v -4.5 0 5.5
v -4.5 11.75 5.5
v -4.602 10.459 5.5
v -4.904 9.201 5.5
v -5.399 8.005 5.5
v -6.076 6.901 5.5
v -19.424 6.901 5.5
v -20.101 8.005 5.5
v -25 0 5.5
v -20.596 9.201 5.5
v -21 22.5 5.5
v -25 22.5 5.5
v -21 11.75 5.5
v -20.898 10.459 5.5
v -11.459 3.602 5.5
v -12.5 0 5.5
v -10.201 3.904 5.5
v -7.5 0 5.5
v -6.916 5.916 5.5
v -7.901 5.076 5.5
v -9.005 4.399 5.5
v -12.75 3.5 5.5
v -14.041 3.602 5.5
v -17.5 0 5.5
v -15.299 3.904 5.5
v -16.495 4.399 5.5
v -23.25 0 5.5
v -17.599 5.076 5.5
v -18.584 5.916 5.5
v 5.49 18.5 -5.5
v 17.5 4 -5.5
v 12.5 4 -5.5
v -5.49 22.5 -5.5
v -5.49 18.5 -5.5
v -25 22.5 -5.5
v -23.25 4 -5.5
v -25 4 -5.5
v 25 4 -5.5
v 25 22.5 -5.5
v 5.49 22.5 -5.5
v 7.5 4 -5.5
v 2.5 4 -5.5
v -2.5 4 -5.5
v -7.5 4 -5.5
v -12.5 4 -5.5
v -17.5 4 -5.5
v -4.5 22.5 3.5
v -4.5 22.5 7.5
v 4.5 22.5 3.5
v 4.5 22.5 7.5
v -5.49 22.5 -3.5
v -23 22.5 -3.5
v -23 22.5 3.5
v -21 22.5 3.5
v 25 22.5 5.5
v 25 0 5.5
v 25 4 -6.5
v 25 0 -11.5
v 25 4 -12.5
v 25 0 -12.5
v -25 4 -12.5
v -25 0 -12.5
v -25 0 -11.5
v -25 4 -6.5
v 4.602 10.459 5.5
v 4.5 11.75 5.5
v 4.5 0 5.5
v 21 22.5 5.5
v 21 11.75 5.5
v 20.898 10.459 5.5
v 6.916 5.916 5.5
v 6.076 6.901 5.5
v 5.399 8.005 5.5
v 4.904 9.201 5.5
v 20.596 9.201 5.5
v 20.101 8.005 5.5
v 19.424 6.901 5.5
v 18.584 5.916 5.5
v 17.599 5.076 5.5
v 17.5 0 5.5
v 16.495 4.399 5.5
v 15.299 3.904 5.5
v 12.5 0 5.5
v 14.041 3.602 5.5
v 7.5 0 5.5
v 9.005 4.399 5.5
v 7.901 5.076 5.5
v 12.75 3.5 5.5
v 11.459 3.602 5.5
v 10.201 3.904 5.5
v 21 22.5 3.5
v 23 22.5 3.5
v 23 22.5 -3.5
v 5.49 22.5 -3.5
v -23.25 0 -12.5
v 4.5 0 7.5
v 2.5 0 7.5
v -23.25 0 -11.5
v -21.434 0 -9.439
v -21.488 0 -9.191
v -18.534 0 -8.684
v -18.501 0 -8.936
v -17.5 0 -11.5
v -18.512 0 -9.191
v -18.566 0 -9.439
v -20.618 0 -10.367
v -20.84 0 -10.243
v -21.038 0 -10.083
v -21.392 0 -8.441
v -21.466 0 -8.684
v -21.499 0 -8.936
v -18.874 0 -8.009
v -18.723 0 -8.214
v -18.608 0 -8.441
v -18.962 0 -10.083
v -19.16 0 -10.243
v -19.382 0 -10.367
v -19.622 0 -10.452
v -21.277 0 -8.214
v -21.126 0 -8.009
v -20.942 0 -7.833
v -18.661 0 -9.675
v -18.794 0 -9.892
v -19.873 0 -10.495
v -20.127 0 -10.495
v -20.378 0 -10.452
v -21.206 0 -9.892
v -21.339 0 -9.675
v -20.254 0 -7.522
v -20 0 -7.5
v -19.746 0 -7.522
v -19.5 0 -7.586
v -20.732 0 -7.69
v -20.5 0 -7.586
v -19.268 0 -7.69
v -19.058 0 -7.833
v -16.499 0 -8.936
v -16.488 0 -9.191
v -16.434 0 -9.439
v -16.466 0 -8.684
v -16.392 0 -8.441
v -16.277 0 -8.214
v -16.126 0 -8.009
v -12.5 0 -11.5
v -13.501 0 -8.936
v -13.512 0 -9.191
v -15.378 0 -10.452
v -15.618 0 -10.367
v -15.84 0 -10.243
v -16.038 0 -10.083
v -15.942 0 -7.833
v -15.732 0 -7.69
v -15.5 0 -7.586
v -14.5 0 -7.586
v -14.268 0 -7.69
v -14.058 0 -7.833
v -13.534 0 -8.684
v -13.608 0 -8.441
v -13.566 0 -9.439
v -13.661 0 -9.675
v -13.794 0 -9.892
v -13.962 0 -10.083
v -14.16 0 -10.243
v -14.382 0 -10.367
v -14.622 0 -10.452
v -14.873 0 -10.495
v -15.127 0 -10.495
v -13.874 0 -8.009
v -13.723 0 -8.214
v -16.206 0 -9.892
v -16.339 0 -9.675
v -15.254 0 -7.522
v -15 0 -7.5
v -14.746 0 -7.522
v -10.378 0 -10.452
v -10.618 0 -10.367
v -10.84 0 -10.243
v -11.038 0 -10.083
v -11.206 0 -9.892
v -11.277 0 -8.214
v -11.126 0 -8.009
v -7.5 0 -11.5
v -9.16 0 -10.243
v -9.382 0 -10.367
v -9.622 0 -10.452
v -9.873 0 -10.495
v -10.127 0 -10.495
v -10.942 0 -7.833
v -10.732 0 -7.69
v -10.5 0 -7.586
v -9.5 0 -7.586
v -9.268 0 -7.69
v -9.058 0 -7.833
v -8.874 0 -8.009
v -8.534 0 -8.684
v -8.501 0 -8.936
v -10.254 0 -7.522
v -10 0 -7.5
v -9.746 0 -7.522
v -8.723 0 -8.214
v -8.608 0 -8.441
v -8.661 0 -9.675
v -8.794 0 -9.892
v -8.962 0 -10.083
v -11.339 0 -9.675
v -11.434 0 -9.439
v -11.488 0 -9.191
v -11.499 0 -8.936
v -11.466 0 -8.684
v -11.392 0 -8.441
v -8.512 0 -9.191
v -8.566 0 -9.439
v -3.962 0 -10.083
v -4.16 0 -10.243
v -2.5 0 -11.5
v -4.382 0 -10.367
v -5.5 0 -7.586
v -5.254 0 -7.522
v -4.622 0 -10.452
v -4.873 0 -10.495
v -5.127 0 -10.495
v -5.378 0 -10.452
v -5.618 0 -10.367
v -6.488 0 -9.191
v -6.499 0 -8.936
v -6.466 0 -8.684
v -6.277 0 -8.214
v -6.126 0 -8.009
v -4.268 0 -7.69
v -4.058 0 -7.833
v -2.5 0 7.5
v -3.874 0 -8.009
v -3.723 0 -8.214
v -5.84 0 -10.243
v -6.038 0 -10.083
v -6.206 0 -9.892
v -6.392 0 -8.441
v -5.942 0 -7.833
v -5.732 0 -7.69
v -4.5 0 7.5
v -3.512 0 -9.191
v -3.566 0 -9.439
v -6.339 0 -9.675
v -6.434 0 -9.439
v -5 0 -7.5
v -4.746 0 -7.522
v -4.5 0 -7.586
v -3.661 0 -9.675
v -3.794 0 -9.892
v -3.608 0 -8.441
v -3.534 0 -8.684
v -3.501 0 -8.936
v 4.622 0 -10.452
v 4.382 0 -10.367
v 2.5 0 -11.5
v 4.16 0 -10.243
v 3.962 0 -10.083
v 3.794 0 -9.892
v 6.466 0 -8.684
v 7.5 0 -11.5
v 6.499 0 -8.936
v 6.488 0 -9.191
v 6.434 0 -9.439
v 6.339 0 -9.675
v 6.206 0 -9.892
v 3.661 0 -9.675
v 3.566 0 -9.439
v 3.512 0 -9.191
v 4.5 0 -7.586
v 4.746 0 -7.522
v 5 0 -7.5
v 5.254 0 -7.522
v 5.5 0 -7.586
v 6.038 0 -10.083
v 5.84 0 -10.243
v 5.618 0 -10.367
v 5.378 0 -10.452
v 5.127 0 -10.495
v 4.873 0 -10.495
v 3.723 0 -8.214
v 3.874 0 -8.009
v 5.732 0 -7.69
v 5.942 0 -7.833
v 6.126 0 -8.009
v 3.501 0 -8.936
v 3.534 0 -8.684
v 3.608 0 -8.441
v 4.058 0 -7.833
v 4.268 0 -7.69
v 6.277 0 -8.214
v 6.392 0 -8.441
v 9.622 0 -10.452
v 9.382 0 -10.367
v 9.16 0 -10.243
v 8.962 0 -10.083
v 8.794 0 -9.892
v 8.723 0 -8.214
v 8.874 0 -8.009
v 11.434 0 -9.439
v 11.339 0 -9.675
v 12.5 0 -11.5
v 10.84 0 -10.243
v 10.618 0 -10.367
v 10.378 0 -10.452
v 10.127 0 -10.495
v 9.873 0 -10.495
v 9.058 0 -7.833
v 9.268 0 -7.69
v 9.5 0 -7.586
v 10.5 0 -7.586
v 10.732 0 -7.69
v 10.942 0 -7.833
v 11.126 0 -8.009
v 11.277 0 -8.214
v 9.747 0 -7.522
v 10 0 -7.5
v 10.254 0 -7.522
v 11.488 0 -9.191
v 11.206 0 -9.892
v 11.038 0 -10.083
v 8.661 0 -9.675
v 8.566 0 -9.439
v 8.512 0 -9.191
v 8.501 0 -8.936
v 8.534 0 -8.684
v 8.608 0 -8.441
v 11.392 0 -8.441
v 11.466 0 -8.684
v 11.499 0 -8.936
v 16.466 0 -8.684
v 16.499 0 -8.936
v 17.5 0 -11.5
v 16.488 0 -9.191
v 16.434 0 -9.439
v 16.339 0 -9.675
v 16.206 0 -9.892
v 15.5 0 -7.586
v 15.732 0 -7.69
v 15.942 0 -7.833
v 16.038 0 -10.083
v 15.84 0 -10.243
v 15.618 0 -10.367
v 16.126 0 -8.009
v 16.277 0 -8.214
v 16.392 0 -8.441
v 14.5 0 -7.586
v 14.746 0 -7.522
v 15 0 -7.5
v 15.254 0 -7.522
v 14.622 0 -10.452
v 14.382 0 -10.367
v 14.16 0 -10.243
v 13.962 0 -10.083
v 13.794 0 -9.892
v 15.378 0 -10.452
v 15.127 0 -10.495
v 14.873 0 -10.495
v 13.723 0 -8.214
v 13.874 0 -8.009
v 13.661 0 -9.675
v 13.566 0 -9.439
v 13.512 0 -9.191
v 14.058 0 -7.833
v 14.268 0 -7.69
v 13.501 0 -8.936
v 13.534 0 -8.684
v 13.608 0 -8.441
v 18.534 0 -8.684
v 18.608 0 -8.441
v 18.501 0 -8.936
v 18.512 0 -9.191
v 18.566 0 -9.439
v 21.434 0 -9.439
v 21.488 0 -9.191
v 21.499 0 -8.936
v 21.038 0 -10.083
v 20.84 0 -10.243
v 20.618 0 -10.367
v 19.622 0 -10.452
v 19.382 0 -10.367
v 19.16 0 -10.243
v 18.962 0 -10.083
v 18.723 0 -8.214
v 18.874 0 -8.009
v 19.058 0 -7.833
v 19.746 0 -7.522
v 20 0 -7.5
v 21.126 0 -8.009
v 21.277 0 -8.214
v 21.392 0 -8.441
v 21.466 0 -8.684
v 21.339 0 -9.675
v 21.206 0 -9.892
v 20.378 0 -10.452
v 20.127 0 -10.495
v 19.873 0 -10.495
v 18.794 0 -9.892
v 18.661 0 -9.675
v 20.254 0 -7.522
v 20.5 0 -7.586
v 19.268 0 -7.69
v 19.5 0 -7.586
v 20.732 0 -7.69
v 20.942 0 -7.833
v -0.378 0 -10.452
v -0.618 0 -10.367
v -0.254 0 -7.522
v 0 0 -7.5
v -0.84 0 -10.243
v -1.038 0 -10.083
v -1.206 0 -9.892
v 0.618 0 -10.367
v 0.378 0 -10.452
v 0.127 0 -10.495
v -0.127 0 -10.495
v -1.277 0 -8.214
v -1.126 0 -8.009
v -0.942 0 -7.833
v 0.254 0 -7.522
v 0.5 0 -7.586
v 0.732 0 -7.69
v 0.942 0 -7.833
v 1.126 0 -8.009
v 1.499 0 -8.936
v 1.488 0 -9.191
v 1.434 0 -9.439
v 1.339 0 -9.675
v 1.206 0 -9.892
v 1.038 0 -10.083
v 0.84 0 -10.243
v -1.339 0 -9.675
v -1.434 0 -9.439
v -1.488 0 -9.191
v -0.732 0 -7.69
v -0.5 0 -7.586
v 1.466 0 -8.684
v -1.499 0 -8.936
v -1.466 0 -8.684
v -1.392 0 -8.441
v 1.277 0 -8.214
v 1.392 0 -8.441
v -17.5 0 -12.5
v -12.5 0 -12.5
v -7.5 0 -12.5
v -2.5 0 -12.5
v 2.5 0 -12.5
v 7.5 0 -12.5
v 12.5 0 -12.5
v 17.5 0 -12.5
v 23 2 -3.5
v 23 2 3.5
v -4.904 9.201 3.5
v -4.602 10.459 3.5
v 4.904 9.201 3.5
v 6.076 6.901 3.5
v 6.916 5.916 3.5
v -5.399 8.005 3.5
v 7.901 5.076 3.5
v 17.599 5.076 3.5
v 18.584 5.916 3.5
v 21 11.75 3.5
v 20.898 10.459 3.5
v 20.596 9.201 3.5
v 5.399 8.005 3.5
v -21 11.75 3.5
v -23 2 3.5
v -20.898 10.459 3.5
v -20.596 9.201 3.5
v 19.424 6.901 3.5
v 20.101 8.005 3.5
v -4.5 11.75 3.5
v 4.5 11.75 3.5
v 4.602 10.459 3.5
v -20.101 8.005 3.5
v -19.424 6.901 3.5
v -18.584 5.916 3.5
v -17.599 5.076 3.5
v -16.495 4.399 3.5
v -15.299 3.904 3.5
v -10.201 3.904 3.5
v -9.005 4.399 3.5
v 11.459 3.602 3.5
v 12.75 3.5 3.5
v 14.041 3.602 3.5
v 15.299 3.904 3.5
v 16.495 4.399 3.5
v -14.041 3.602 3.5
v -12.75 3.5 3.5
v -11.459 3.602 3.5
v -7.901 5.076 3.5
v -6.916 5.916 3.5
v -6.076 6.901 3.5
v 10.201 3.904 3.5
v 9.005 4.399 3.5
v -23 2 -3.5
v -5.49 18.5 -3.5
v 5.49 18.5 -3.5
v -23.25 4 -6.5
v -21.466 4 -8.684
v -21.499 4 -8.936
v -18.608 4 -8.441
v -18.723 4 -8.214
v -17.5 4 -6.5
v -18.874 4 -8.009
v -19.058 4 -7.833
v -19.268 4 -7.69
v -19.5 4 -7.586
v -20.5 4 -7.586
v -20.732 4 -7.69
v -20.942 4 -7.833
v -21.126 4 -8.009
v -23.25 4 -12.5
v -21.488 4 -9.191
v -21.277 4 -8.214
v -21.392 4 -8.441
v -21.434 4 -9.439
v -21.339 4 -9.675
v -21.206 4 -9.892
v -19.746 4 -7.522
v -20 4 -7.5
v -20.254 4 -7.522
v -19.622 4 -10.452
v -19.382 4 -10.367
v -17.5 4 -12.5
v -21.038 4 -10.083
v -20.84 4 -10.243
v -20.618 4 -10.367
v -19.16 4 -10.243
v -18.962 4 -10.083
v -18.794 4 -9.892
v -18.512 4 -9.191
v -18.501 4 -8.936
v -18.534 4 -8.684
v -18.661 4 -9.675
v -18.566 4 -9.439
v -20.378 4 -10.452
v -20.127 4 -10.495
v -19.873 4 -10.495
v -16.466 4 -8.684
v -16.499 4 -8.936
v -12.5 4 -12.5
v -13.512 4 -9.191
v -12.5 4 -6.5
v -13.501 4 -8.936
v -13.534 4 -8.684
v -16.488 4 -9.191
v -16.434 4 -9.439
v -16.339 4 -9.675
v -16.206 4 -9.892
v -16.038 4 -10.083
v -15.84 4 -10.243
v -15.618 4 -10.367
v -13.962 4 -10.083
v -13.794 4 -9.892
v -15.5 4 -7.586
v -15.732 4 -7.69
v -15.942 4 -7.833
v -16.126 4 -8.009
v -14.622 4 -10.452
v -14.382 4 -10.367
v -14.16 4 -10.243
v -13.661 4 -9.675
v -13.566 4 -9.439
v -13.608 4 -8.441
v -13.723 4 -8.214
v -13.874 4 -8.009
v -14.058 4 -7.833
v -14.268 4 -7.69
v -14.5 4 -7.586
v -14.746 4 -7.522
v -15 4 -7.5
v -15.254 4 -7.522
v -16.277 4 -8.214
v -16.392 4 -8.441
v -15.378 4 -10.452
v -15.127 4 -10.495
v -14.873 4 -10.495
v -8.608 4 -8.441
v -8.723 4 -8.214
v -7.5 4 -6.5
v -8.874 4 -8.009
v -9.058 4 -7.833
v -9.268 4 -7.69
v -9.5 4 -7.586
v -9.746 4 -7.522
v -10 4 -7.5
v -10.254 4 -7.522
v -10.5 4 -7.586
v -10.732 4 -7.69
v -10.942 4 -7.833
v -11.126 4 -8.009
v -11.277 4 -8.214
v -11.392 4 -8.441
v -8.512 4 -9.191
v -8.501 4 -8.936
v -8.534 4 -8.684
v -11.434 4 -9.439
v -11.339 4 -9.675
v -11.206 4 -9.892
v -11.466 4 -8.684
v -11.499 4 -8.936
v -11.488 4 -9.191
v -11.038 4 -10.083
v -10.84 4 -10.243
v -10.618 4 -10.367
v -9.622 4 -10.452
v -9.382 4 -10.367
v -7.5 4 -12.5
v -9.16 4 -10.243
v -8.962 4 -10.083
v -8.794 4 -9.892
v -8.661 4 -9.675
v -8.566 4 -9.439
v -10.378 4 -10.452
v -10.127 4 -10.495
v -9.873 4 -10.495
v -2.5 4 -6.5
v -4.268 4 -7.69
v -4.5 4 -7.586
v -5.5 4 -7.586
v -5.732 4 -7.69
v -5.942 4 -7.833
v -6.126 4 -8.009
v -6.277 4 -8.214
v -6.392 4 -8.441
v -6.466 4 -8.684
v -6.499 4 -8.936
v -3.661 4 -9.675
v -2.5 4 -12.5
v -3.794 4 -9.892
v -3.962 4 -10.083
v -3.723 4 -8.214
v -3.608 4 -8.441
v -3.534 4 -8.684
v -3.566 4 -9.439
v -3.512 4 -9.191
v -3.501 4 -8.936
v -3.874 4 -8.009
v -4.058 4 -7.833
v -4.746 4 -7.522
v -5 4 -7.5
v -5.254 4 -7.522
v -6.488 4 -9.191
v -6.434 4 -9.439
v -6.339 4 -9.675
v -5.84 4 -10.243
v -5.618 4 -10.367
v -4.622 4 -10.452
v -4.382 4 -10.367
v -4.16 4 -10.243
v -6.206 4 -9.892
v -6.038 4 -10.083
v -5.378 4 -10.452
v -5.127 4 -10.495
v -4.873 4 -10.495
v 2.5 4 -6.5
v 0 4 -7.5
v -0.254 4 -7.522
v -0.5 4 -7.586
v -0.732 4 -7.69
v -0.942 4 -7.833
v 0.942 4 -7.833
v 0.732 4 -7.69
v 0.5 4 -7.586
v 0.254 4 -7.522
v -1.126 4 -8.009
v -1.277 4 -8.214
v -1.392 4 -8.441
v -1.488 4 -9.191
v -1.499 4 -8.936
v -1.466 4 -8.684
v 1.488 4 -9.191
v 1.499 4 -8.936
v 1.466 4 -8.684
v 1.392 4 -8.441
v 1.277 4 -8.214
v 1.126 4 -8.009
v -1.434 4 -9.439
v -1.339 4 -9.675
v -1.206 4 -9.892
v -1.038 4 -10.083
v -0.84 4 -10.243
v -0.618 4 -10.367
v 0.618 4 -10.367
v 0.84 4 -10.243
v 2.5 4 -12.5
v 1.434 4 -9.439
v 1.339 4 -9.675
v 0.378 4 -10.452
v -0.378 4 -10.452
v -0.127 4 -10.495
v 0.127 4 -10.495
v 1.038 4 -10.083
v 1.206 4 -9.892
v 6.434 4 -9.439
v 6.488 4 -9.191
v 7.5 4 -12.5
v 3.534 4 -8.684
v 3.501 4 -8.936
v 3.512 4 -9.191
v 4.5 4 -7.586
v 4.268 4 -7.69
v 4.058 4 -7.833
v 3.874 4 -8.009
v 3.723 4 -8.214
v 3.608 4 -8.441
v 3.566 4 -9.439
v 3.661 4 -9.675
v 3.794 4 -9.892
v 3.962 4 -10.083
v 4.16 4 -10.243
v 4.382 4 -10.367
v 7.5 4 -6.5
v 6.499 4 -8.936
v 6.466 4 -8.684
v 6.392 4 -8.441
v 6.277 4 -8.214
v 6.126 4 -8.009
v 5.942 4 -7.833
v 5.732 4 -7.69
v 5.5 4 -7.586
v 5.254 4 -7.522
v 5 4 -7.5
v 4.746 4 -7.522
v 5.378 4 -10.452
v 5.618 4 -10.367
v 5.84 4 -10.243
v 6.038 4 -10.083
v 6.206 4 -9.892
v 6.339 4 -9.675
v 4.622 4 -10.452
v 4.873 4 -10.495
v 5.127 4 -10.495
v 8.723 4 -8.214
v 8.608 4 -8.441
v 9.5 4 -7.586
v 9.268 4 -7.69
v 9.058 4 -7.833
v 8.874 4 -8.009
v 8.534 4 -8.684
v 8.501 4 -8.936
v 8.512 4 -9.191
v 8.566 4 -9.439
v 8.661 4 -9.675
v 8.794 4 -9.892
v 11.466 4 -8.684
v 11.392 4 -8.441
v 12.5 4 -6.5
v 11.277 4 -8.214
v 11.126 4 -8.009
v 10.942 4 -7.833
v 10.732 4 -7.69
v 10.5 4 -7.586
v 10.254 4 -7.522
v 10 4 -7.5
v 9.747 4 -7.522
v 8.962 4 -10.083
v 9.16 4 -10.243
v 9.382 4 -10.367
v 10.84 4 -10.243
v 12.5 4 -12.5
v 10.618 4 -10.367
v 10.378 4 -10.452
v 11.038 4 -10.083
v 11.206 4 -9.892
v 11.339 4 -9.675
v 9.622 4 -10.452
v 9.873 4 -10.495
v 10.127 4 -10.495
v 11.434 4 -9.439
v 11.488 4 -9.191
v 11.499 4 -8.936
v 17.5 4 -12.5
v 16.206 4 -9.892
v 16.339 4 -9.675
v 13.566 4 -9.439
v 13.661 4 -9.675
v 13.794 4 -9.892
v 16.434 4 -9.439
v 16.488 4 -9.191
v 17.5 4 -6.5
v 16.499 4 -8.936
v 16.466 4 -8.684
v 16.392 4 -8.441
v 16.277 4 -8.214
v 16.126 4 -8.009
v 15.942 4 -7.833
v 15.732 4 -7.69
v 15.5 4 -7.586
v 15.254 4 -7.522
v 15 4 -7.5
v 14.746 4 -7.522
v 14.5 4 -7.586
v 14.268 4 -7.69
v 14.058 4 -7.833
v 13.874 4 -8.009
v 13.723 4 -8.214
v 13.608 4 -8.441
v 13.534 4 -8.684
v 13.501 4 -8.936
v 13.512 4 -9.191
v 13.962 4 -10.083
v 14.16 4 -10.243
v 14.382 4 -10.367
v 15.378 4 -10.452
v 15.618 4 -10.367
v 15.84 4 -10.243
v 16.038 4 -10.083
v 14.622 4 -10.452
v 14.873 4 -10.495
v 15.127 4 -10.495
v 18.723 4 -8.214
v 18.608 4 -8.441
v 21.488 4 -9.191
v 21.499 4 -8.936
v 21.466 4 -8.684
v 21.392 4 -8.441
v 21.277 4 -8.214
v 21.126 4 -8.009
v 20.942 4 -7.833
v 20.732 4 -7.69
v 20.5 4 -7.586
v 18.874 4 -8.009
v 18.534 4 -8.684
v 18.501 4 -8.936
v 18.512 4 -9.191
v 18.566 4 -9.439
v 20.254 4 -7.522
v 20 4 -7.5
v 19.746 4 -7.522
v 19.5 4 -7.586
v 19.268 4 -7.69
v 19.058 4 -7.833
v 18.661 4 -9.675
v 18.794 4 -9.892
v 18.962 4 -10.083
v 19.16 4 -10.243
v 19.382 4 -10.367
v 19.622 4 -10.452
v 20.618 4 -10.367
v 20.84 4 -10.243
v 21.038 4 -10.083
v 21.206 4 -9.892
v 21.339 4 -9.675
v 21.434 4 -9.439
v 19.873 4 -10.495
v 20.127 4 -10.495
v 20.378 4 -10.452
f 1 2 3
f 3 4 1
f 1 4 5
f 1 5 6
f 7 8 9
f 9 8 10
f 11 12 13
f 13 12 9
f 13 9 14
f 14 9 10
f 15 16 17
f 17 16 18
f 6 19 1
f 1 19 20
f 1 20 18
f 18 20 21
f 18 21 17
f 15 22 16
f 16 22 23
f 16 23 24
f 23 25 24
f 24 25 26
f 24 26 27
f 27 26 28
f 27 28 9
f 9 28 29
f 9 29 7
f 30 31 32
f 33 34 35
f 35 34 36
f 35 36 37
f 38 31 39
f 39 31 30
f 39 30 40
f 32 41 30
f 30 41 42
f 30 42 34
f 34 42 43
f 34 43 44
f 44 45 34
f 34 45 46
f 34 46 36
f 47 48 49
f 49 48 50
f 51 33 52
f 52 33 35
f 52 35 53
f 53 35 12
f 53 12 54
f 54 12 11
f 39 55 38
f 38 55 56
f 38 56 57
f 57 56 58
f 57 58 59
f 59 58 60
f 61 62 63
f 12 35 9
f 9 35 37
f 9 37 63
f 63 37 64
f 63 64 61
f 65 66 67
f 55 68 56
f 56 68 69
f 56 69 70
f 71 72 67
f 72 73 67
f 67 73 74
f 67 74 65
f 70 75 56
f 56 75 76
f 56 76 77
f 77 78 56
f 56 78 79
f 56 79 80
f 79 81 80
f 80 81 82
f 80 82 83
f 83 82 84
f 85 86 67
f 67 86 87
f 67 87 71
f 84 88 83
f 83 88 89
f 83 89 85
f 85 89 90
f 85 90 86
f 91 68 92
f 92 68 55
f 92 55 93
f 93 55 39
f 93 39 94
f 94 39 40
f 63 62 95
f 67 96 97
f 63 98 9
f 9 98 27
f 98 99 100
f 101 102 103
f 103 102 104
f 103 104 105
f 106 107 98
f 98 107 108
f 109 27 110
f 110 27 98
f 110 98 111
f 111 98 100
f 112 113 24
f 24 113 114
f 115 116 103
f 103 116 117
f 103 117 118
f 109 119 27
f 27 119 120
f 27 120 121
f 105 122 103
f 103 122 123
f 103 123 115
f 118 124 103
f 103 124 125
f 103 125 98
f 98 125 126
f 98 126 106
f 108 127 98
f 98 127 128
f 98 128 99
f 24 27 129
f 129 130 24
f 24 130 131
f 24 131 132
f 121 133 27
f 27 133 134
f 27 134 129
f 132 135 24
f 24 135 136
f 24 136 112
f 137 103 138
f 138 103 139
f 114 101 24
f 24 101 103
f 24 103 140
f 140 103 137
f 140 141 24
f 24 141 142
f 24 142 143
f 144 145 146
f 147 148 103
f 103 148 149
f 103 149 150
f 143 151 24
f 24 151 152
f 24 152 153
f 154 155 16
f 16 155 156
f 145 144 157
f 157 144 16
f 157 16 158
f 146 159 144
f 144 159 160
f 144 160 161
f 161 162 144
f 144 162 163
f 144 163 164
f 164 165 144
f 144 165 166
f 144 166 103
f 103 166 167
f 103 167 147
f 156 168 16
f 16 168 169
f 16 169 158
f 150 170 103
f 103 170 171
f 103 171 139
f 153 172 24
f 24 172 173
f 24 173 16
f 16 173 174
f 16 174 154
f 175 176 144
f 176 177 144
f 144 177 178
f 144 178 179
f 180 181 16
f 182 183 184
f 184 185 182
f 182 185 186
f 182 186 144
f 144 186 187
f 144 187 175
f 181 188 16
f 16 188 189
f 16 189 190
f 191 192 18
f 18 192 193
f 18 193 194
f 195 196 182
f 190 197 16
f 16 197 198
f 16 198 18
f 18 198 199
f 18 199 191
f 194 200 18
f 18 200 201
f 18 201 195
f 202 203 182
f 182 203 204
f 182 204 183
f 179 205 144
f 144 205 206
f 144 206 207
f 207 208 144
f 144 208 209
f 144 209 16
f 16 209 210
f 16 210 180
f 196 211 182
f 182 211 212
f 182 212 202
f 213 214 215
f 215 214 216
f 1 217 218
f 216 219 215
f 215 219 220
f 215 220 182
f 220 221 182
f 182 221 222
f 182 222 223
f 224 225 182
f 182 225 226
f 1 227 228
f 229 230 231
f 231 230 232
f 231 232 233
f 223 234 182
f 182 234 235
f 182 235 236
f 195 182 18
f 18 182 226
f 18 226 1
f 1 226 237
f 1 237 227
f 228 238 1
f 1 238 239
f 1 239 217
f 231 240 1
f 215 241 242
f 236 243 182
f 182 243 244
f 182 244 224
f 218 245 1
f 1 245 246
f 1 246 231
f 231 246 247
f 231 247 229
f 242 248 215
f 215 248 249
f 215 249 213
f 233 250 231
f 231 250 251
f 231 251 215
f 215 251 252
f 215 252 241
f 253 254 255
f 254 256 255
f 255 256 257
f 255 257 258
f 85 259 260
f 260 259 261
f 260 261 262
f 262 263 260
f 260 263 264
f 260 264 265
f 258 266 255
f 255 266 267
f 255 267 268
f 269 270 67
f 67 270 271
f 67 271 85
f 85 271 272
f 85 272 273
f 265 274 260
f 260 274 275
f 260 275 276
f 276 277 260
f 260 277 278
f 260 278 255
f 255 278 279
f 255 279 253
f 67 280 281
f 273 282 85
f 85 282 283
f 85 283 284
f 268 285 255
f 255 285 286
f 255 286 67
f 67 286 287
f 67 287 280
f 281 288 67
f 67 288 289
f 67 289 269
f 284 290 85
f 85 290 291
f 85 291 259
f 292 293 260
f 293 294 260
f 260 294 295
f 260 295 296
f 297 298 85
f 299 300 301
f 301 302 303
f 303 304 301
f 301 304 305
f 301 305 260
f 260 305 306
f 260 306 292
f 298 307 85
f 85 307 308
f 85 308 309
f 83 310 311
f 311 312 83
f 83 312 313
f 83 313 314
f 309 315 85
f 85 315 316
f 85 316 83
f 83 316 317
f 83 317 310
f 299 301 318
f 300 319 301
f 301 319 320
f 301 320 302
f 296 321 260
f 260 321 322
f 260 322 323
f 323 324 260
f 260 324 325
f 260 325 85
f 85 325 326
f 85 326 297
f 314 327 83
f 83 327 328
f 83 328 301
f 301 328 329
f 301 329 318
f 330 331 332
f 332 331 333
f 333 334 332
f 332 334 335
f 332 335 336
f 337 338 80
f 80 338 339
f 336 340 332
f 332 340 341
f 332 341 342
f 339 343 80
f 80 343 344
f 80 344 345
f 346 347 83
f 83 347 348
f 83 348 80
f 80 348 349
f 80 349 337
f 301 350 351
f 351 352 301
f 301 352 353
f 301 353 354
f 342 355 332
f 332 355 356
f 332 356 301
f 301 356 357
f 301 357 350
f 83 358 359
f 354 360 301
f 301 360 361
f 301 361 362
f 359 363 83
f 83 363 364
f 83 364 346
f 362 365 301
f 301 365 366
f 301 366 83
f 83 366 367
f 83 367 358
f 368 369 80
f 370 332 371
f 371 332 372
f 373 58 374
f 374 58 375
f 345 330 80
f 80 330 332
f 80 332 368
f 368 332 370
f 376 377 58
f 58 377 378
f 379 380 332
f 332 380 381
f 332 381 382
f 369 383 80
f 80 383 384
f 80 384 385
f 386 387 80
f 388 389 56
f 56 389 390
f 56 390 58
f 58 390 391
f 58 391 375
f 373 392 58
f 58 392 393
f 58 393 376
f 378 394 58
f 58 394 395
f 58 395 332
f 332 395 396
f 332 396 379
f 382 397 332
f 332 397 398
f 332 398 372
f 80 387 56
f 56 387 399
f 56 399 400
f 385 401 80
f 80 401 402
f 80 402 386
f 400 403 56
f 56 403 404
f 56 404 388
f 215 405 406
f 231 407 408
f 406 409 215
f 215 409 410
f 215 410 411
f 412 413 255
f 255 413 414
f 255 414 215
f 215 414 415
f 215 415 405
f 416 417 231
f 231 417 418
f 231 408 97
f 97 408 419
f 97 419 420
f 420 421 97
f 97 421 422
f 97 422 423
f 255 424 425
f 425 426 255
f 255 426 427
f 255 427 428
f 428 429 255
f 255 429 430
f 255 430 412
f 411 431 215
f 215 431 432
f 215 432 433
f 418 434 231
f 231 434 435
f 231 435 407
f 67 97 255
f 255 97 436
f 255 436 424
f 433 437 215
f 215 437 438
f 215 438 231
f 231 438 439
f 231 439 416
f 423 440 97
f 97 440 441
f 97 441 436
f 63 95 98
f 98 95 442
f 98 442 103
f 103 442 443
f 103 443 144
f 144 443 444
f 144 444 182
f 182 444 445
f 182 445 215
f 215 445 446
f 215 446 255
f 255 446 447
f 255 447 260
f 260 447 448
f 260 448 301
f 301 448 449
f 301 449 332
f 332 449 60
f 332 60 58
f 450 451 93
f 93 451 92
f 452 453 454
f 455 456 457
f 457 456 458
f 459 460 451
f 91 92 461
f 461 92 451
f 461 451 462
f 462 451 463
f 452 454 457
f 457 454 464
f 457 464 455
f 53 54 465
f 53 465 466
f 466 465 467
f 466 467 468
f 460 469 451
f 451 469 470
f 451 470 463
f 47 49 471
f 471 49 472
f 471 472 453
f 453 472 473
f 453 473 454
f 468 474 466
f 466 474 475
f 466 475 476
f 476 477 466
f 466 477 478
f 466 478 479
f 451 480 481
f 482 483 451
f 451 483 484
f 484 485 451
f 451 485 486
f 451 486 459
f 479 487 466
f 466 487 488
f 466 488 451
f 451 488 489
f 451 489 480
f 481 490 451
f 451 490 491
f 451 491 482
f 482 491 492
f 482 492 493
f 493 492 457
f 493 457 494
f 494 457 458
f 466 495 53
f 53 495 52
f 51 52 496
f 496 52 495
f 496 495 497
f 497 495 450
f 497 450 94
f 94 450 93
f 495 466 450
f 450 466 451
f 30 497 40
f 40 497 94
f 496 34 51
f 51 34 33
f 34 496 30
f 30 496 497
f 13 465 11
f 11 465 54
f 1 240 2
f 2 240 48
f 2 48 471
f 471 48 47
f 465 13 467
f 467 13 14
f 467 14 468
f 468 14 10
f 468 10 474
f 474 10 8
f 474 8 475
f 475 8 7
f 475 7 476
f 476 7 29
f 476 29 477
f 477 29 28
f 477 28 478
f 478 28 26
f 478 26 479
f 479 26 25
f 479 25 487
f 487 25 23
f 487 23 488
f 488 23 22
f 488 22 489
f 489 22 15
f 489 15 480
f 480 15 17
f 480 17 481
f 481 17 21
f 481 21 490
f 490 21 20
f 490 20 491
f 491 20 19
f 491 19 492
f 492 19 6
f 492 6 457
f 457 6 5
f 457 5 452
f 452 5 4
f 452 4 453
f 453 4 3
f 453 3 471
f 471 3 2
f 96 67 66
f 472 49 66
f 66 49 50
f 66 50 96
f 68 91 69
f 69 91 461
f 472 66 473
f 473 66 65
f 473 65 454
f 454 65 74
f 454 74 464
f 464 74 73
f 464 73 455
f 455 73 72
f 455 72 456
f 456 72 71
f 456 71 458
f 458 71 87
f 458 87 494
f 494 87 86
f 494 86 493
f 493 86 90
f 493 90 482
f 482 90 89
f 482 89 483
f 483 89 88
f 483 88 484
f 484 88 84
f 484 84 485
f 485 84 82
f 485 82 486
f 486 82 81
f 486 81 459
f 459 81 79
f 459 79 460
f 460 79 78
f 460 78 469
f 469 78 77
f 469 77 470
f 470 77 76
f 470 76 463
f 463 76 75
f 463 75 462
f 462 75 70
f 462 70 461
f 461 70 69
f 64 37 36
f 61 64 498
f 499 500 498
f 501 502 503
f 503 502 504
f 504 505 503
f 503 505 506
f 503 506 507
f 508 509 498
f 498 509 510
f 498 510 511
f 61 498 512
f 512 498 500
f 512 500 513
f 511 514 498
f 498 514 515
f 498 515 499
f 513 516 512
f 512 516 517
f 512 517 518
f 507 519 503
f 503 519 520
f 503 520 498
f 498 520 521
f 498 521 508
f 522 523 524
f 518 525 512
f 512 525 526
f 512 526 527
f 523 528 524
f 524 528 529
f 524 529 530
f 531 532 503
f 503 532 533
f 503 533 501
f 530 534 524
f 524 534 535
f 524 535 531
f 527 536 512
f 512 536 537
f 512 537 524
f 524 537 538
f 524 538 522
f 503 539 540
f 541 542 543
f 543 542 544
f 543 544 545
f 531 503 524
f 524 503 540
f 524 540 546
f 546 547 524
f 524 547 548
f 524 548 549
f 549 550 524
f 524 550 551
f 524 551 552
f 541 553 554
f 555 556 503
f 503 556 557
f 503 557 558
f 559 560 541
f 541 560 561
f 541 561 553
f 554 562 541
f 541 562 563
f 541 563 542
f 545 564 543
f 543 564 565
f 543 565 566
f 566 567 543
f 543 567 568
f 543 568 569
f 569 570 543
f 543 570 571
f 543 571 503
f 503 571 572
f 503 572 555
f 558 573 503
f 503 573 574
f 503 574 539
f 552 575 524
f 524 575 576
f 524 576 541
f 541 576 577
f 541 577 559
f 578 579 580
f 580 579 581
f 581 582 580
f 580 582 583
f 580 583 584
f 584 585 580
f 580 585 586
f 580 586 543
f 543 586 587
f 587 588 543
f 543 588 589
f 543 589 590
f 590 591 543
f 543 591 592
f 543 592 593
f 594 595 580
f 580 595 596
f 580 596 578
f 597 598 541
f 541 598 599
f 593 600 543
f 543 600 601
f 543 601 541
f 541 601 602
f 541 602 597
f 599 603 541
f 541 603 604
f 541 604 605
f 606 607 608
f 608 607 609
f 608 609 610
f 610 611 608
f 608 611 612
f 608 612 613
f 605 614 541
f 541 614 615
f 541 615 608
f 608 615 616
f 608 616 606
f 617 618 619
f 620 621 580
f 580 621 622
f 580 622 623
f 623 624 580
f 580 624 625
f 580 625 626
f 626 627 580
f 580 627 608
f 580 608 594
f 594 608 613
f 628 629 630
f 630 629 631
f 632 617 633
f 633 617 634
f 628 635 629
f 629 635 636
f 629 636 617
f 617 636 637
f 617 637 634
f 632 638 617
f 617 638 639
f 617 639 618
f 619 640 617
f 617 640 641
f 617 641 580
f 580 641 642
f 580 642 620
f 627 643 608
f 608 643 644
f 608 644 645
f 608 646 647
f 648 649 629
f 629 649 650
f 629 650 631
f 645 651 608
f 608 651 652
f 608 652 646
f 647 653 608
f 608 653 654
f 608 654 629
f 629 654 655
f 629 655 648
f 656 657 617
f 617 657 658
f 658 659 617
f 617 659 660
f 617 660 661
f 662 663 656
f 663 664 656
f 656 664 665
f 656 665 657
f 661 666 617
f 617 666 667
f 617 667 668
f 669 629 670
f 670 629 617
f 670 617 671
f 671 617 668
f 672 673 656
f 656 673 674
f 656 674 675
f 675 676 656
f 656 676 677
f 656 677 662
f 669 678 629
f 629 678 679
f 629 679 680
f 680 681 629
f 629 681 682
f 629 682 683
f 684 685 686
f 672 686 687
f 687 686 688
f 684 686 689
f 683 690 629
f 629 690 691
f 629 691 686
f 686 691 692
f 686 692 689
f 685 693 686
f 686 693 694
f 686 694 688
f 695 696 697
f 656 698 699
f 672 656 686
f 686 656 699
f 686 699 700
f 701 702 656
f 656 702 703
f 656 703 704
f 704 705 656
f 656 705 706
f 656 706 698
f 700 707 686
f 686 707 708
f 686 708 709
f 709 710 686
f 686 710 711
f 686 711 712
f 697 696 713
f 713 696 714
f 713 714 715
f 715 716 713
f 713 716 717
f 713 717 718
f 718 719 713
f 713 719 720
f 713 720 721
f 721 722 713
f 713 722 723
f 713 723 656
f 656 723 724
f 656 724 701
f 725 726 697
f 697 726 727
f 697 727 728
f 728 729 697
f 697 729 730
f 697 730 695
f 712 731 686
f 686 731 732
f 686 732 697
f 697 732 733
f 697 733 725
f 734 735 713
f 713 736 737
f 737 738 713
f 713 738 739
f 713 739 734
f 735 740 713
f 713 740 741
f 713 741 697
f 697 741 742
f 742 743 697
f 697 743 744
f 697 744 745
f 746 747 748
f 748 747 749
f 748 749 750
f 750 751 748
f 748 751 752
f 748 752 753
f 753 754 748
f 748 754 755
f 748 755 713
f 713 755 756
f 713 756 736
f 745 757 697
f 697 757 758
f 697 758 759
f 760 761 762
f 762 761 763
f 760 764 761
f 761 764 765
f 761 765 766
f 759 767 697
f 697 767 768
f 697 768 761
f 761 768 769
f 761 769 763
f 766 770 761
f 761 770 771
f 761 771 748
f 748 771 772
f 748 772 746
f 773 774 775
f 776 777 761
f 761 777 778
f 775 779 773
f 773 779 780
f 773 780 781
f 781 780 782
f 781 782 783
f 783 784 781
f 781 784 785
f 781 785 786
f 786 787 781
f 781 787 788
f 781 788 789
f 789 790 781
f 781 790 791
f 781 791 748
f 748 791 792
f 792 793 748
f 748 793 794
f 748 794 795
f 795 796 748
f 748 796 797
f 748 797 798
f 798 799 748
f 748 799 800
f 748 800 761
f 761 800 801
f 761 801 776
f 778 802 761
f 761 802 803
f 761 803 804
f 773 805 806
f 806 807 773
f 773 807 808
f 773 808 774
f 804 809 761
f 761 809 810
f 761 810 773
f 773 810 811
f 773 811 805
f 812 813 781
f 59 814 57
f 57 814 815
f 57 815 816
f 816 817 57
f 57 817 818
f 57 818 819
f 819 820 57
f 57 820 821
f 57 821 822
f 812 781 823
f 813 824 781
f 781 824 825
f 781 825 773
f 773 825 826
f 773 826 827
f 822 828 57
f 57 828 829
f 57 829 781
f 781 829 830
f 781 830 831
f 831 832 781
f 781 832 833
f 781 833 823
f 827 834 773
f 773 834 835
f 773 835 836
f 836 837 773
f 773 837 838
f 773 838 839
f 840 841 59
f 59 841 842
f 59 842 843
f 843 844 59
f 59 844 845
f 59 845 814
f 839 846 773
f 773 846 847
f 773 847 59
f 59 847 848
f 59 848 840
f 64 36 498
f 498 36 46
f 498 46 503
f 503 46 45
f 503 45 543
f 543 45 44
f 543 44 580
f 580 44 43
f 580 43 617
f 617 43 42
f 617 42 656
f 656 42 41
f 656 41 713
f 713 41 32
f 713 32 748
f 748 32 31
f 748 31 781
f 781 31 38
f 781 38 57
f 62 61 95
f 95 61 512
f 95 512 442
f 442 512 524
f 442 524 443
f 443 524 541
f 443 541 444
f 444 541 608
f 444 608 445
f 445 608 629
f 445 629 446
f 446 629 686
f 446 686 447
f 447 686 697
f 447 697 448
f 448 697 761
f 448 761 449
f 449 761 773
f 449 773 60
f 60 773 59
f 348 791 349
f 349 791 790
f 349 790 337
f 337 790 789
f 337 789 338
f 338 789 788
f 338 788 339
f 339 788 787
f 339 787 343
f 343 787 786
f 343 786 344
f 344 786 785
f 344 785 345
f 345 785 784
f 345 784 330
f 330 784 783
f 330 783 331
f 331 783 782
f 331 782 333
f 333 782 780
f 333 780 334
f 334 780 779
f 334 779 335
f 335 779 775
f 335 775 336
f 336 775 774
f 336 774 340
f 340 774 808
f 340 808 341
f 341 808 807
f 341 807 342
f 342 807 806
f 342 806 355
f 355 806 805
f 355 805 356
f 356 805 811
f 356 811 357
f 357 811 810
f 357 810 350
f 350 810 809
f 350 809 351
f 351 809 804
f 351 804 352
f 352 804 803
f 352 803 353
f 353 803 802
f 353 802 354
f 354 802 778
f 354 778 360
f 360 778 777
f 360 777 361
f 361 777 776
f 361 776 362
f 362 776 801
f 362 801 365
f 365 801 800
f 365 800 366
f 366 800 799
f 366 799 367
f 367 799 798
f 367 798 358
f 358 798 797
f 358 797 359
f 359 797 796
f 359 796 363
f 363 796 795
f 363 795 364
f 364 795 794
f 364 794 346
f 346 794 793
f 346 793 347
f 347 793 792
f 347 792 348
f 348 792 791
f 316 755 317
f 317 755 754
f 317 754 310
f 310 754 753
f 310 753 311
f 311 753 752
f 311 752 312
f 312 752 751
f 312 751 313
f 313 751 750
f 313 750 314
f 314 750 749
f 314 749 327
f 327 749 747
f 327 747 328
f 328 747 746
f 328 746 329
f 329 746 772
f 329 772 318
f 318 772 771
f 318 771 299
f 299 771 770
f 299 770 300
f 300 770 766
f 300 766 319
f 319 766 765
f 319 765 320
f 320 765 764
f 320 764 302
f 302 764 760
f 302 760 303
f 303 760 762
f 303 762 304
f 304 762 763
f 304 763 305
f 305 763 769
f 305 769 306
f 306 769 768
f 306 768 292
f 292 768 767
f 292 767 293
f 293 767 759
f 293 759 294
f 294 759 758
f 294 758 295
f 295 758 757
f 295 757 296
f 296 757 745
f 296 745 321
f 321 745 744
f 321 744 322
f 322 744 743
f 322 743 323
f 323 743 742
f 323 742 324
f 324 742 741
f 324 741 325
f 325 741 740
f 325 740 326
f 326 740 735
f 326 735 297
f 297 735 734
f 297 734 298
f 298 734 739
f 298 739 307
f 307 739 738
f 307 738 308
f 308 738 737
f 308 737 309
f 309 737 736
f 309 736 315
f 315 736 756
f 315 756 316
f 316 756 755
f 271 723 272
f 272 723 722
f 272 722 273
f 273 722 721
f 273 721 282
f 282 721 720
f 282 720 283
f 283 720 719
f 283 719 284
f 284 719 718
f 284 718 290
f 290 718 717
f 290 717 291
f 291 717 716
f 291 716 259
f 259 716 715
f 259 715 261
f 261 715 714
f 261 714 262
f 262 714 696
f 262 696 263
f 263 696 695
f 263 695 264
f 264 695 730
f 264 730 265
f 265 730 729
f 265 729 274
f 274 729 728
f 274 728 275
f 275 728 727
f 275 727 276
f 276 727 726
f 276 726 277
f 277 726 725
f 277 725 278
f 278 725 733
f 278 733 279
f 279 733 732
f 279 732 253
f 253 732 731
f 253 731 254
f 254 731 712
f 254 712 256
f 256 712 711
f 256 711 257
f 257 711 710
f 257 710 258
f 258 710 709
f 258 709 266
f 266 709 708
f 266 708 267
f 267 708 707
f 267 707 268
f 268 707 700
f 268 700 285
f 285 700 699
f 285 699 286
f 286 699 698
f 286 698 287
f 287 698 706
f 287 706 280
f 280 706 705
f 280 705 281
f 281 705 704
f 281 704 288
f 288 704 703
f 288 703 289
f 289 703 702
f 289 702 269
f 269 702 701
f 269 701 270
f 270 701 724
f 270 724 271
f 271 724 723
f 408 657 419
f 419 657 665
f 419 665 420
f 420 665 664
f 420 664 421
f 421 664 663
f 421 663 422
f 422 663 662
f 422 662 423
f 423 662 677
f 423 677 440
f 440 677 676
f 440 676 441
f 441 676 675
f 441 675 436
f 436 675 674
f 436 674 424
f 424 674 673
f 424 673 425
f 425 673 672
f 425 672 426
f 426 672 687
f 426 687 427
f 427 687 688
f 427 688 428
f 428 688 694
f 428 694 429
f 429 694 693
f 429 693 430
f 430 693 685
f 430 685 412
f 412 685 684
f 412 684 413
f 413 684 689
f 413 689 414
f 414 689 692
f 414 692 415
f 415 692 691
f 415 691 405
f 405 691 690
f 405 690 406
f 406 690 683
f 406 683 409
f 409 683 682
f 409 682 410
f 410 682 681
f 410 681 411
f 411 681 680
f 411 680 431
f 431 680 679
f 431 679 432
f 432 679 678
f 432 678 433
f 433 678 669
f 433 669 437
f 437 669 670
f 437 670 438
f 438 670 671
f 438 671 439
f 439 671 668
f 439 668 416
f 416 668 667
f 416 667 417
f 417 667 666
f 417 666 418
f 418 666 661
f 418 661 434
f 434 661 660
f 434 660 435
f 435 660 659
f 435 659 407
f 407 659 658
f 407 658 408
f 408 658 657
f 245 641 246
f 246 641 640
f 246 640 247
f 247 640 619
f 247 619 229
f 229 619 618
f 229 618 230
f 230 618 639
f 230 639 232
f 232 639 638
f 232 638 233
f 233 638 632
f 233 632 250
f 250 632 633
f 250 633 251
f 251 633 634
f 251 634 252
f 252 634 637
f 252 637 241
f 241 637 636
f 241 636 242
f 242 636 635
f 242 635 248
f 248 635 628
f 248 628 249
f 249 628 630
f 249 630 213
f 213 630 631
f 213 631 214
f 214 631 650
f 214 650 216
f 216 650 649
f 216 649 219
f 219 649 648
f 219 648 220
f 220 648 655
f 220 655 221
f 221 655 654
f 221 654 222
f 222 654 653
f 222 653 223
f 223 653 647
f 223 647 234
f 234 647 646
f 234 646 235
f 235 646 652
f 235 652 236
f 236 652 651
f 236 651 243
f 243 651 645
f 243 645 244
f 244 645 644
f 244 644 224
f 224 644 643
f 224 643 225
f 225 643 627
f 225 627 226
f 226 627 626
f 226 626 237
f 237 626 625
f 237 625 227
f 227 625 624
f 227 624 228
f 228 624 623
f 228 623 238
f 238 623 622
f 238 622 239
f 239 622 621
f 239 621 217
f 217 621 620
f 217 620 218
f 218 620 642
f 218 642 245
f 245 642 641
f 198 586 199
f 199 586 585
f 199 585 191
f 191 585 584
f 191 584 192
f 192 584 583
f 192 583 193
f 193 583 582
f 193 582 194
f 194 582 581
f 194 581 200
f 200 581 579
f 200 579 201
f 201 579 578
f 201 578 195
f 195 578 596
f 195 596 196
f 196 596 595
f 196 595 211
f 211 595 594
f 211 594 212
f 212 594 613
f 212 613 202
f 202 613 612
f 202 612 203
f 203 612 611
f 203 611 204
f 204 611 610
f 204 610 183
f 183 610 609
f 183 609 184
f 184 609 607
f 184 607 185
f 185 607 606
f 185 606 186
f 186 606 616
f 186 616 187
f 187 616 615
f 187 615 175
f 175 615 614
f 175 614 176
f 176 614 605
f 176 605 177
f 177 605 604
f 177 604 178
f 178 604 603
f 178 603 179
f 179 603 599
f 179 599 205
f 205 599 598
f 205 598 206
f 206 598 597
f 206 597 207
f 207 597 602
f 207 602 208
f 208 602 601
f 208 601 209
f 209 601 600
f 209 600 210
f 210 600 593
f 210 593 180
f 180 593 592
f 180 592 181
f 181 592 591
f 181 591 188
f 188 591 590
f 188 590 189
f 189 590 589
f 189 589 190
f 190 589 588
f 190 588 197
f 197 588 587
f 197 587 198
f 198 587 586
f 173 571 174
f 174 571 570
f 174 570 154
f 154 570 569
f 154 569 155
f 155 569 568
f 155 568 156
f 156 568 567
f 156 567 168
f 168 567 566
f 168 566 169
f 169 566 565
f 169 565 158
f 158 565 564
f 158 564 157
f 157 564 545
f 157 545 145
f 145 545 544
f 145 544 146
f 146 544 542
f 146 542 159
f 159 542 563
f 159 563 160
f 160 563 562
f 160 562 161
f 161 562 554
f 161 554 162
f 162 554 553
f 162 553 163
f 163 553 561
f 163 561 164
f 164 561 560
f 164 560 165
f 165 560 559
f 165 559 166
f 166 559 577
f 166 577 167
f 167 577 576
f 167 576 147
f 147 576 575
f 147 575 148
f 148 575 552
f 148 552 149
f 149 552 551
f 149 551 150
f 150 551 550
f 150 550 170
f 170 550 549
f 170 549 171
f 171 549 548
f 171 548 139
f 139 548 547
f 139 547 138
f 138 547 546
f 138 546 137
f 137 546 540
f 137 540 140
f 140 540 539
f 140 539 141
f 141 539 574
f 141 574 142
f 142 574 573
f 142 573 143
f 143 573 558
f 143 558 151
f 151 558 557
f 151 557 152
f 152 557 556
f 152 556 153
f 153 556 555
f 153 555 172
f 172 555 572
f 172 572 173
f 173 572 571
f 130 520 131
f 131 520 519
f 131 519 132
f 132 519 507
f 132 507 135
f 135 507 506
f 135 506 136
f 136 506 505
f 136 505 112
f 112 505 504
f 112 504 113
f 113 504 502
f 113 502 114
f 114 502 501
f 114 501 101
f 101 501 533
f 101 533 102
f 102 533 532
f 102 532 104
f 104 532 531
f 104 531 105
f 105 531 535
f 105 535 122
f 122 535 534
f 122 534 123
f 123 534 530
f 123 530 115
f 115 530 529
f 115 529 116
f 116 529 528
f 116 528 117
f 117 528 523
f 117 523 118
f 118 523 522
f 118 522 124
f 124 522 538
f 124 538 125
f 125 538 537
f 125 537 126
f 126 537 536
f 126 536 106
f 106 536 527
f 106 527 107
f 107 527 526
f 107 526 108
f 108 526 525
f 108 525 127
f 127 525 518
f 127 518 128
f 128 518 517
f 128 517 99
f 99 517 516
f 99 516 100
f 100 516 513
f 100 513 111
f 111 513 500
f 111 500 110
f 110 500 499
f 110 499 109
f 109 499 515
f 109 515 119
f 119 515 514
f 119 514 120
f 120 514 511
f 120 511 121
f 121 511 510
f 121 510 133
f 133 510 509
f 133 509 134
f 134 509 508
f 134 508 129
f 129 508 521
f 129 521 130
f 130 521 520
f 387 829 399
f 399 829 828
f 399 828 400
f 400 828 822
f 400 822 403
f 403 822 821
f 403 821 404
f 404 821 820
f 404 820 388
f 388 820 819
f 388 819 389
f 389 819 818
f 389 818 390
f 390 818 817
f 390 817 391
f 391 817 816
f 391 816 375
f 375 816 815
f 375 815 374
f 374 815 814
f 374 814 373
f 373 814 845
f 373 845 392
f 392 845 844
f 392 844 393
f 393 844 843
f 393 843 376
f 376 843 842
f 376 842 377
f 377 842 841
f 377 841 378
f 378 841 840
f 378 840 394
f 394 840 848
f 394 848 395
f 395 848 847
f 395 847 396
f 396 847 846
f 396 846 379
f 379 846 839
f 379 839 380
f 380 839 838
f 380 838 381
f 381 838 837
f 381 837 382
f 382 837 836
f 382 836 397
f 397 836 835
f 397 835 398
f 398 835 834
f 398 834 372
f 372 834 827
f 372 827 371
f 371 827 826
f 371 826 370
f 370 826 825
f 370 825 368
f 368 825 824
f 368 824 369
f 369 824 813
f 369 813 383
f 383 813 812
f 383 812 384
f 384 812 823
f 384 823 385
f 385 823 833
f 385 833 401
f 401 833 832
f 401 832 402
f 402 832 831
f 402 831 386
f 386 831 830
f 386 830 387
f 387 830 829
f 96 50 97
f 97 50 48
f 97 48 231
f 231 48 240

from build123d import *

# Parameters (mm, degrees)
ESBO_O1_W                = 50
ESBO_O1_H                = 11
RESSALTO_EXTRUS_O1_DEPTH = 22.5
ESBO_O2_W                = 46
ESBO_O2_H                = 7
CORTE_EXTRUS_O1_DEPTH    = 20.5
ESBO_O3_W                = 10.97916057
ESBO_O3_H                = 2
CORTE_EXTRUS_O2_DEPTH    = 4
CORTE_EXTRUS_O3_DEPTH    = 4
ESBO_O9_W                = 50
ESBO_O9_H                = 4
RESSALTO_EXTRUS_O4_DEPTH = 7
ESBO_O13_R               = 1.5
CORTE_EXTRUS_O4_DEPTH    = 7
ESBO_O19_W               = 9
ESBO_O19_H               = 4
RESSALTO_EXTRUS_O5_DEPTH = 22.5


with BuildPart() as part:
    # Esboço1 → Ressalto-extrusão1 (new body)
    with BuildSketch(Plane(origin=(0, 0, 0), x_dir=(1, 0, 0), z_dir=(0, 1, 0))):
        Rectangle(ESBO_O1_W, ESBO_O1_H)
    extrude(amount=RESSALTO_EXTRUS_O1_DEPTH)

    # Esboço2 → Corte-extrusão1 (cut)
    with BuildSketch(Plane(origin=(0, 22.5, 0), x_dir=(1, 0, 0), z_dir=(0, 1, 0))):
        Rectangle(ESBO_O2_W, ESBO_O2_H)
    extrude(amount=-CORTE_EXTRUS_O1_DEPTH, mode=Mode.SUBTRACT)

    # Esboço3 → Corte-extrusão2 (cut)
    with BuildSketch(Plane(origin=(0, 22.5, 0), x_dir=(1, 0, 0), z_dir=(0, 1, 0))):
        with Locations((0, 4.5)):
            Rectangle(ESBO_O3_W, ESBO_O3_H)
    extrude(amount=-CORTE_EXTRUS_O2_DEPTH, mode=Mode.SUBTRACT)

    # Esboço5 → Corte-extrusão3 (cut)
    with BuildSketch(Plane.XY.offset(5.5)):
        with BuildLine():
            Line((-21, 22.5), (-4.5, 22.5))
            Line((-4.5, 22.5), (-4.5, 11.75))
            ThreePointArc((-4.5, 11.75), (-12.75, 3.5), (-21, 11.75))
            Line((-21, 11.75), (-21, 22.5))
        make_face()
        with BuildLine():
            Line((4.5, 22.5), (21, 22.5))
            Line((21, 22.5), (21, 11.75))
            ThreePointArc((21, 11.75), (12.75, 3.5), (4.5, 11.75))
            Line((4.5, 11.75), (4.5, 22.5))
        make_face()
    extrude(amount=-CORTE_EXTRUS_O3_DEPTH, mode=Mode.SUBTRACT)

    # Esboço9 → Ressalto-extrusão4 (add)
    with BuildSketch(Plane(origin=(0, 0, -5.5), x_dir=(-1, 0, 0), z_dir=(0, 0, -1))):
        with Locations((0, 2)):
            Rectangle(ESBO_O9_W, ESBO_O9_H)
    extrude(amount=RESSALTO_EXTRUS_O4_DEPTH)

    # Esboço13 → Corte-extrusão4 (cut)
    with BuildSketch(Plane(origin=(0, 4, 0), x_dir=(1, 0, 0), z_dir=(0, 1, 0))):
        with Locations(Location((10, 9, 0), (0, 0, 270))):
            Circle(ESBO_O13_R)
        with Locations(Location((5, 9, 0), (0, 0, 270))):
            Circle(ESBO_O13_R)
        with Locations(Location((20, 9, 0), (0, 0, 270))):
            Circle(ESBO_O13_R)
        with Locations(Location((15, 9, 0), (0, 0, 270))):
            Circle(ESBO_O13_R)
        with Locations(Location((0, 9, 0), (0, 0, 270))):
            Circle(ESBO_O13_R)
        with Locations(Location((-5, 9, 0), (0, 0, 270))):
            Circle(ESBO_O13_R)
        with Locations(Location((-10, 9, 0), (0, 0, 270))):
            Circle(ESBO_O13_R)
        with Locations(Location((-15, 9, 0), (0, 0, 270))):
            Circle(ESBO_O13_R)
        with Locations(Location((-20, 9, 0), (0, 0, 270))):
            Circle(ESBO_O13_R)
    extrude(amount=-CORTE_EXTRUS_O4_DEPTH, mode=Mode.SUBTRACT)

    # Esboço19 → Ressalto-extrusão5 (add)
    with BuildSketch(Plane(origin=(0, 22.5, 0), x_dir=(1, 0, 0), z_dir=(0, 1, 0))):
        with Locations((0, -5.5)):
            Rectangle(ESBO_O19_W, ESBO_O19_H)
    extrude(amount=-RESSALTO_EXTRUS_O5_DEPTH)


solid = part.part
